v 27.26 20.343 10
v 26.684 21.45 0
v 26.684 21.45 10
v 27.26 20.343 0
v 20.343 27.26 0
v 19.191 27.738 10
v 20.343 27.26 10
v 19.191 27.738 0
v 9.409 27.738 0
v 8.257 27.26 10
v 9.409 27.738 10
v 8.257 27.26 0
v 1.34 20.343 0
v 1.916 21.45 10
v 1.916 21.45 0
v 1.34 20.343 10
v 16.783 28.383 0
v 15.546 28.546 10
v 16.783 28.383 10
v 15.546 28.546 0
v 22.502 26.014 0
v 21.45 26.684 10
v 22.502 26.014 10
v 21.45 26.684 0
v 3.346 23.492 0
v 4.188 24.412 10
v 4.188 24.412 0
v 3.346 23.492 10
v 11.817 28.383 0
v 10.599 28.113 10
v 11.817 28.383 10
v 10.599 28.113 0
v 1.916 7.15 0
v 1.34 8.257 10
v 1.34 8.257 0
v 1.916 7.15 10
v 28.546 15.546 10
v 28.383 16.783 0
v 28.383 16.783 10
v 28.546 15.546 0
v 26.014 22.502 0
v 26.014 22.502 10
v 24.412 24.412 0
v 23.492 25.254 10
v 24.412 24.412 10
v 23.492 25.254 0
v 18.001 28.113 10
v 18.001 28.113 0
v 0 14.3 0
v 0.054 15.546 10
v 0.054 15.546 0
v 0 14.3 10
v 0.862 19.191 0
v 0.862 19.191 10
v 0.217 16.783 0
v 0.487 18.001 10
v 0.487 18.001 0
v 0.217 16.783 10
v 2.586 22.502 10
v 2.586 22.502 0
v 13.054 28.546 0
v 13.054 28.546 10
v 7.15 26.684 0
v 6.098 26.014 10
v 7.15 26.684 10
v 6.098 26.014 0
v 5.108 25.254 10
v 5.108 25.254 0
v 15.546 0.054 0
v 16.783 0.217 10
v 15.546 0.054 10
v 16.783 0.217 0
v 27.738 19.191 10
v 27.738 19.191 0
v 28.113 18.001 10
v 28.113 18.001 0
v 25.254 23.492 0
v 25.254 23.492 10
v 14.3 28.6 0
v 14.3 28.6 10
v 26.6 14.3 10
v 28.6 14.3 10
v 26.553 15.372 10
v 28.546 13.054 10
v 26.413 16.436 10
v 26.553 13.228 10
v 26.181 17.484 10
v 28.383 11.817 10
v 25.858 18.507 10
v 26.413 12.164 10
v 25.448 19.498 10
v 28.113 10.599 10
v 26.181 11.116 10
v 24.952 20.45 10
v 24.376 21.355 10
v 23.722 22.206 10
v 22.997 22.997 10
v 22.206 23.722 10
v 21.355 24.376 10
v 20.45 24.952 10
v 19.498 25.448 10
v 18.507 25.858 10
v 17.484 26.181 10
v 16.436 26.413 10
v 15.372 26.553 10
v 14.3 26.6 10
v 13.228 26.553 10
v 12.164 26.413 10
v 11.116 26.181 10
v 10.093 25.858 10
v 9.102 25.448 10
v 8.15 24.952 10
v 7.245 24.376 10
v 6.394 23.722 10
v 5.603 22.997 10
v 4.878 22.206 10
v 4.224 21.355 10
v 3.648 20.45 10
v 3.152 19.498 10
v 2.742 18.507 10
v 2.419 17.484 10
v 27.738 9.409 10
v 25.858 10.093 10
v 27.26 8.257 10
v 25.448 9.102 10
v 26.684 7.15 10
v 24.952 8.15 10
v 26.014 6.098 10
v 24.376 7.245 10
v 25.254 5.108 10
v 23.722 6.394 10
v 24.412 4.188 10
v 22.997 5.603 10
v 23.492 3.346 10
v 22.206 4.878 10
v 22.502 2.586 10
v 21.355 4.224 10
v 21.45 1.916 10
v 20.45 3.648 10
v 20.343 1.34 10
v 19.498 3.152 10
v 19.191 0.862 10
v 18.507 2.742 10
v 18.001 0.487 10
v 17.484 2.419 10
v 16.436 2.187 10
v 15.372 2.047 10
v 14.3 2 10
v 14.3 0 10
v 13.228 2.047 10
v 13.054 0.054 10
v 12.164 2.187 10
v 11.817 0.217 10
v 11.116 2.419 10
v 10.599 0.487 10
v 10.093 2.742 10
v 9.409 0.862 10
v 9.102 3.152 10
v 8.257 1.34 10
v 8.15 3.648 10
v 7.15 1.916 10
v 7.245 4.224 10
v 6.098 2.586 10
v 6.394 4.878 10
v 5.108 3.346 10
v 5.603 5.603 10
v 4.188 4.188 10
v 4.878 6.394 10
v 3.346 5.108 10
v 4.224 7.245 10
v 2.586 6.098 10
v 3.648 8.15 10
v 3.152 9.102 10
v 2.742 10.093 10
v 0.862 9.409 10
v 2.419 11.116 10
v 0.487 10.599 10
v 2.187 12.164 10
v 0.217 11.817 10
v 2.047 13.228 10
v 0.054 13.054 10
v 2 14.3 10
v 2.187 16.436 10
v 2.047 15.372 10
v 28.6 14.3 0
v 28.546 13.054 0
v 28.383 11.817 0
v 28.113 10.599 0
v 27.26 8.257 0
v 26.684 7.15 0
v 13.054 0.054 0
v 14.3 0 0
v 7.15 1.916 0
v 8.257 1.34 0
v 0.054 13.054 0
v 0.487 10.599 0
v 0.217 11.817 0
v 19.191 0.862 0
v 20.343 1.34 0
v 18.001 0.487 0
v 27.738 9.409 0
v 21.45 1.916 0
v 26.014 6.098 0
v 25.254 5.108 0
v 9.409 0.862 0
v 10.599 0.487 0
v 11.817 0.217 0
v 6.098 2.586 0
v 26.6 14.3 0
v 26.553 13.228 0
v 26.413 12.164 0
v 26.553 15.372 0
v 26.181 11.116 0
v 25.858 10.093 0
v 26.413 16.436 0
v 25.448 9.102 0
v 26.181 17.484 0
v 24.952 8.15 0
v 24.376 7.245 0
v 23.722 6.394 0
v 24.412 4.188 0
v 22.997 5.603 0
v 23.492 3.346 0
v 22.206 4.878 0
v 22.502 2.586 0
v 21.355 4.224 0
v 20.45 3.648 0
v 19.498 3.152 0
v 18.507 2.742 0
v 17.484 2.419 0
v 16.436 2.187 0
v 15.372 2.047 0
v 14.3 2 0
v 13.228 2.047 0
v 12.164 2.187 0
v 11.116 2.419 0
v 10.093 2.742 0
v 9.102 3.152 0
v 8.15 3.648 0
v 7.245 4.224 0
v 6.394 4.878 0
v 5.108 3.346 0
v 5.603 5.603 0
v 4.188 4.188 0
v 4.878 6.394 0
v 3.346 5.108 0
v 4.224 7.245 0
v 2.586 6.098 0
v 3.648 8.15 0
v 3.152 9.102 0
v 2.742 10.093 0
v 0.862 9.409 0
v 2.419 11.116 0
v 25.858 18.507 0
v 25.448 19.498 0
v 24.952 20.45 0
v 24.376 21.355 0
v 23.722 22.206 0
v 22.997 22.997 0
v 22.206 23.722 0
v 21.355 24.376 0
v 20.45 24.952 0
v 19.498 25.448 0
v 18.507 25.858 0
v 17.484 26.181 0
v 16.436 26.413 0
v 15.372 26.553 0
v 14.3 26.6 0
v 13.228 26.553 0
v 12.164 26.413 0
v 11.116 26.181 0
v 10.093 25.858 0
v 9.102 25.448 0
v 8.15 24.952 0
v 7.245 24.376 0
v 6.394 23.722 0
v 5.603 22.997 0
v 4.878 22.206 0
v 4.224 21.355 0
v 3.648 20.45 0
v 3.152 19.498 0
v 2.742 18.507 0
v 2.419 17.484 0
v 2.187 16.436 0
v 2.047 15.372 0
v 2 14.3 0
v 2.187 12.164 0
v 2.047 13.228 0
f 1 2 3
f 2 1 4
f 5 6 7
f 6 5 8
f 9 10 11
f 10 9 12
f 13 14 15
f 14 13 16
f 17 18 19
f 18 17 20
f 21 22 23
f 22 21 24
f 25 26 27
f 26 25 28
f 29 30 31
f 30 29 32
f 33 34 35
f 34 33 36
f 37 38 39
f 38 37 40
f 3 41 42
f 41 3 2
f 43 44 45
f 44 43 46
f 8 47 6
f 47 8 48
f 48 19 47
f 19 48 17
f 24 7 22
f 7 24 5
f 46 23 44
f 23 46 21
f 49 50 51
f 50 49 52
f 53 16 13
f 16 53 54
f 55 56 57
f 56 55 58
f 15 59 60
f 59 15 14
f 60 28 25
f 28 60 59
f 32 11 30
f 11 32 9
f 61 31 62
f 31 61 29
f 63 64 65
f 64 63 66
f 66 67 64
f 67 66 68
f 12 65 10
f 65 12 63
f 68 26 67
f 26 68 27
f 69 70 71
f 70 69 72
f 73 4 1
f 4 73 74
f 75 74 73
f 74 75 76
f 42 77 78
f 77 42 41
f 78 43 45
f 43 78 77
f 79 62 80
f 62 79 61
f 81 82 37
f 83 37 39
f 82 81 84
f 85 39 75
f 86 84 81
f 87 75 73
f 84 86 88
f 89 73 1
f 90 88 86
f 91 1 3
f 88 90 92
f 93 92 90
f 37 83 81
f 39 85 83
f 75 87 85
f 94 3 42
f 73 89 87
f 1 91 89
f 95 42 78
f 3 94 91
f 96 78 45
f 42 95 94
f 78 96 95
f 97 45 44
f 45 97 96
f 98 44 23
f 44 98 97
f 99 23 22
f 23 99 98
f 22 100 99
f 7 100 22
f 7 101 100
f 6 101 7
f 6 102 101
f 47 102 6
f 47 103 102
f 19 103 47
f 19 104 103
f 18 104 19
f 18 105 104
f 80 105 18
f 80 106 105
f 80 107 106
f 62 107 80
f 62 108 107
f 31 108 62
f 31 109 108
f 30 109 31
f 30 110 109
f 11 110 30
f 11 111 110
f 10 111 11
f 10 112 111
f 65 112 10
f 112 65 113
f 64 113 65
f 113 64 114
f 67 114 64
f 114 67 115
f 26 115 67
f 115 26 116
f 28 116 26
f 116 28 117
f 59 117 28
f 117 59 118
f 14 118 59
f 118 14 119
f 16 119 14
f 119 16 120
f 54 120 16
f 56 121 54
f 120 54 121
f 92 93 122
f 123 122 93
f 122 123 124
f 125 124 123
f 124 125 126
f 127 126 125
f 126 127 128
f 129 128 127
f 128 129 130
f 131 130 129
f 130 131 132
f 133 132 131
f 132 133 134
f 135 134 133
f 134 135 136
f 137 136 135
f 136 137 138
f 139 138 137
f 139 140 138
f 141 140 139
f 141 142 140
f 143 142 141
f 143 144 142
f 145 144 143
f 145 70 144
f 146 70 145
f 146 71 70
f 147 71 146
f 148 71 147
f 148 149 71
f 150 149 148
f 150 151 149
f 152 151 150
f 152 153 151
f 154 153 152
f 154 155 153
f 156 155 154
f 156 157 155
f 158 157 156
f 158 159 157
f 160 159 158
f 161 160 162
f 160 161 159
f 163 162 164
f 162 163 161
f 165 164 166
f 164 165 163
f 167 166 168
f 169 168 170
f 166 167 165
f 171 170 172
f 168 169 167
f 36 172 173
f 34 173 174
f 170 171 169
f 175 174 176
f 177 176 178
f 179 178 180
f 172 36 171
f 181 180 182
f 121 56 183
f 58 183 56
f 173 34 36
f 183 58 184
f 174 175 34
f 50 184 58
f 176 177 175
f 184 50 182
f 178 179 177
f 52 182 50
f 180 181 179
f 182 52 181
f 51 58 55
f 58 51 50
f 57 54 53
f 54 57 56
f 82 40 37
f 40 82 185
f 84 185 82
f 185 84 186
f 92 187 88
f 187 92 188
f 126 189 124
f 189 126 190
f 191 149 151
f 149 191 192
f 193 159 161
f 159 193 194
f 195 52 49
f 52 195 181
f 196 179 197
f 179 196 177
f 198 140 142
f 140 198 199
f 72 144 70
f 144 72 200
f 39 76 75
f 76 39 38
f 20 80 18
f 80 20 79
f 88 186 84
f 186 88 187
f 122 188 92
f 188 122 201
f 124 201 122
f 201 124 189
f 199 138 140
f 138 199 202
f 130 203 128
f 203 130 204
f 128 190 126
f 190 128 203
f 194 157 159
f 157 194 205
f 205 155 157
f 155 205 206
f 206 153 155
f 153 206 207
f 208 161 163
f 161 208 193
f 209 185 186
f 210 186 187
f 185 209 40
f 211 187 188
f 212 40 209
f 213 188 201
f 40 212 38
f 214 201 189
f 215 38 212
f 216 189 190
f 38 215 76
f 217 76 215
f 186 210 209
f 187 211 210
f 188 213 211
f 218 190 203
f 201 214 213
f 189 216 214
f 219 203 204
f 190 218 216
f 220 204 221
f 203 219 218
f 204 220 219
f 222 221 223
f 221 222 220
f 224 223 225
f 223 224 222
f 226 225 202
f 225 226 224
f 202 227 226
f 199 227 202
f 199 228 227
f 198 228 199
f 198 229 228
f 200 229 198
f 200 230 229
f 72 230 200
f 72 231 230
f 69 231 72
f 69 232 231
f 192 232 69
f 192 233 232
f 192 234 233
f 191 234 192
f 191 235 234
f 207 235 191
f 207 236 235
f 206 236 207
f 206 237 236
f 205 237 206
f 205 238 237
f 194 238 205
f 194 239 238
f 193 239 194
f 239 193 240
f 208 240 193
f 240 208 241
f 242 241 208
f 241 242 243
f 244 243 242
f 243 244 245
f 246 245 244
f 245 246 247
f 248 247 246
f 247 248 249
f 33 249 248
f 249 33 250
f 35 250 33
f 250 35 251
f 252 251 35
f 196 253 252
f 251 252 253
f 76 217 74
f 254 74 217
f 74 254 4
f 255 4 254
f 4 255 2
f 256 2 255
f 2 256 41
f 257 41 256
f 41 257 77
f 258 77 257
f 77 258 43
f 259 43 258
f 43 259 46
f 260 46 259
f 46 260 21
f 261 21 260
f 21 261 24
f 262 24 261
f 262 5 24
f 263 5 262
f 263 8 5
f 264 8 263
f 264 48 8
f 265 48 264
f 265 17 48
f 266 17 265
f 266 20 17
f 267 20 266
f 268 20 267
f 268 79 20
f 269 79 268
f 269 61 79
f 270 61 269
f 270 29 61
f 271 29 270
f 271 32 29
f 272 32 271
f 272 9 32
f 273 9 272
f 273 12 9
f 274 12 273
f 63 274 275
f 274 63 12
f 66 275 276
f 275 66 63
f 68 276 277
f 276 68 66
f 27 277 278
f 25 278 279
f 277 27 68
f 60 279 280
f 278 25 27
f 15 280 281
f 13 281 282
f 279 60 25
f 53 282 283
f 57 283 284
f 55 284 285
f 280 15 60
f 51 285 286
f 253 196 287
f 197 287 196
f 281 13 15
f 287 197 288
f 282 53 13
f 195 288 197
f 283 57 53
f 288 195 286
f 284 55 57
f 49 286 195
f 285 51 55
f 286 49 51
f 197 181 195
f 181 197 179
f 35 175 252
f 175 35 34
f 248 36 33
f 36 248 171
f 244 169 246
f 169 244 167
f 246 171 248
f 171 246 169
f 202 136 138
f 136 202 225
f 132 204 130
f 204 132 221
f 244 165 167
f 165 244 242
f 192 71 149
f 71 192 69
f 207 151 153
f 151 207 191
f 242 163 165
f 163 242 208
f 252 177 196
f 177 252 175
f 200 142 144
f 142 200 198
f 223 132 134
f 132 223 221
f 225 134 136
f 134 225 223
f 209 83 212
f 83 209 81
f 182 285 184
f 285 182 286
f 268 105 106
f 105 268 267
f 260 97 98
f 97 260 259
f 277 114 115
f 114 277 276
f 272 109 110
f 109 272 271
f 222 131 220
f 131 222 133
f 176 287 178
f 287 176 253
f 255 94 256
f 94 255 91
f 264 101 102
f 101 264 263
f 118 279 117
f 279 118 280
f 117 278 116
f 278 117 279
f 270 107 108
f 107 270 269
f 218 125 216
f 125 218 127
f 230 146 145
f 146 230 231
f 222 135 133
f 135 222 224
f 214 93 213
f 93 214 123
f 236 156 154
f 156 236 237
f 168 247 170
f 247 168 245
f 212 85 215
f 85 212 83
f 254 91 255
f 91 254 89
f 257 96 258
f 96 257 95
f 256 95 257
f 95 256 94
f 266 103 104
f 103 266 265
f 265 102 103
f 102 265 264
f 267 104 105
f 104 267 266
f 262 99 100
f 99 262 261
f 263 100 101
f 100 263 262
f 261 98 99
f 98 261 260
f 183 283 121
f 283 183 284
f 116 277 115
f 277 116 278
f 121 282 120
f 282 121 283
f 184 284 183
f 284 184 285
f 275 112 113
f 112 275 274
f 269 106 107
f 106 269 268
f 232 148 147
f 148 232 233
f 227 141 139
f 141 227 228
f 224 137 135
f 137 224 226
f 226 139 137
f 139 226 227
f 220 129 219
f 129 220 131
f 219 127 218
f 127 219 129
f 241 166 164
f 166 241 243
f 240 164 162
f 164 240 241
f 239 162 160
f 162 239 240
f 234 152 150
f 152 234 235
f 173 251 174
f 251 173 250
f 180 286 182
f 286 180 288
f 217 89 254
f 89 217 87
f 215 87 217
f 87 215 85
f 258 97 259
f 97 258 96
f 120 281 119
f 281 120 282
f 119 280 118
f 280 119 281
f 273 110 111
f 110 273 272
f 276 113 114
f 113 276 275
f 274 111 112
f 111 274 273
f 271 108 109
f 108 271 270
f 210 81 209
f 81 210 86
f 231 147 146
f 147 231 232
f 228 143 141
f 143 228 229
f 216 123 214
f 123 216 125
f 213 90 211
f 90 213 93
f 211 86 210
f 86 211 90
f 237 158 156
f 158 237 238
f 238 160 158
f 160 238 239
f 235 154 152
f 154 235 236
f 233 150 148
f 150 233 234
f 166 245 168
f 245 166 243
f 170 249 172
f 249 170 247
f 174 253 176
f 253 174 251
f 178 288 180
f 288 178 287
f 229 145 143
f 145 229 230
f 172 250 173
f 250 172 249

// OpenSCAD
//General
$fn = 72;
tolerance = 0.5;
wall = 2;

r_pipe = 24.1/2+tolerance/2; // includes pipe wall

translate([r_pipe+wall, r_pipe+wall, 0])
difference(){
  cylinder(r=r_pipe+wall, h=10);
  cylinder(r=r_pipe, h=10+0.001);
}
